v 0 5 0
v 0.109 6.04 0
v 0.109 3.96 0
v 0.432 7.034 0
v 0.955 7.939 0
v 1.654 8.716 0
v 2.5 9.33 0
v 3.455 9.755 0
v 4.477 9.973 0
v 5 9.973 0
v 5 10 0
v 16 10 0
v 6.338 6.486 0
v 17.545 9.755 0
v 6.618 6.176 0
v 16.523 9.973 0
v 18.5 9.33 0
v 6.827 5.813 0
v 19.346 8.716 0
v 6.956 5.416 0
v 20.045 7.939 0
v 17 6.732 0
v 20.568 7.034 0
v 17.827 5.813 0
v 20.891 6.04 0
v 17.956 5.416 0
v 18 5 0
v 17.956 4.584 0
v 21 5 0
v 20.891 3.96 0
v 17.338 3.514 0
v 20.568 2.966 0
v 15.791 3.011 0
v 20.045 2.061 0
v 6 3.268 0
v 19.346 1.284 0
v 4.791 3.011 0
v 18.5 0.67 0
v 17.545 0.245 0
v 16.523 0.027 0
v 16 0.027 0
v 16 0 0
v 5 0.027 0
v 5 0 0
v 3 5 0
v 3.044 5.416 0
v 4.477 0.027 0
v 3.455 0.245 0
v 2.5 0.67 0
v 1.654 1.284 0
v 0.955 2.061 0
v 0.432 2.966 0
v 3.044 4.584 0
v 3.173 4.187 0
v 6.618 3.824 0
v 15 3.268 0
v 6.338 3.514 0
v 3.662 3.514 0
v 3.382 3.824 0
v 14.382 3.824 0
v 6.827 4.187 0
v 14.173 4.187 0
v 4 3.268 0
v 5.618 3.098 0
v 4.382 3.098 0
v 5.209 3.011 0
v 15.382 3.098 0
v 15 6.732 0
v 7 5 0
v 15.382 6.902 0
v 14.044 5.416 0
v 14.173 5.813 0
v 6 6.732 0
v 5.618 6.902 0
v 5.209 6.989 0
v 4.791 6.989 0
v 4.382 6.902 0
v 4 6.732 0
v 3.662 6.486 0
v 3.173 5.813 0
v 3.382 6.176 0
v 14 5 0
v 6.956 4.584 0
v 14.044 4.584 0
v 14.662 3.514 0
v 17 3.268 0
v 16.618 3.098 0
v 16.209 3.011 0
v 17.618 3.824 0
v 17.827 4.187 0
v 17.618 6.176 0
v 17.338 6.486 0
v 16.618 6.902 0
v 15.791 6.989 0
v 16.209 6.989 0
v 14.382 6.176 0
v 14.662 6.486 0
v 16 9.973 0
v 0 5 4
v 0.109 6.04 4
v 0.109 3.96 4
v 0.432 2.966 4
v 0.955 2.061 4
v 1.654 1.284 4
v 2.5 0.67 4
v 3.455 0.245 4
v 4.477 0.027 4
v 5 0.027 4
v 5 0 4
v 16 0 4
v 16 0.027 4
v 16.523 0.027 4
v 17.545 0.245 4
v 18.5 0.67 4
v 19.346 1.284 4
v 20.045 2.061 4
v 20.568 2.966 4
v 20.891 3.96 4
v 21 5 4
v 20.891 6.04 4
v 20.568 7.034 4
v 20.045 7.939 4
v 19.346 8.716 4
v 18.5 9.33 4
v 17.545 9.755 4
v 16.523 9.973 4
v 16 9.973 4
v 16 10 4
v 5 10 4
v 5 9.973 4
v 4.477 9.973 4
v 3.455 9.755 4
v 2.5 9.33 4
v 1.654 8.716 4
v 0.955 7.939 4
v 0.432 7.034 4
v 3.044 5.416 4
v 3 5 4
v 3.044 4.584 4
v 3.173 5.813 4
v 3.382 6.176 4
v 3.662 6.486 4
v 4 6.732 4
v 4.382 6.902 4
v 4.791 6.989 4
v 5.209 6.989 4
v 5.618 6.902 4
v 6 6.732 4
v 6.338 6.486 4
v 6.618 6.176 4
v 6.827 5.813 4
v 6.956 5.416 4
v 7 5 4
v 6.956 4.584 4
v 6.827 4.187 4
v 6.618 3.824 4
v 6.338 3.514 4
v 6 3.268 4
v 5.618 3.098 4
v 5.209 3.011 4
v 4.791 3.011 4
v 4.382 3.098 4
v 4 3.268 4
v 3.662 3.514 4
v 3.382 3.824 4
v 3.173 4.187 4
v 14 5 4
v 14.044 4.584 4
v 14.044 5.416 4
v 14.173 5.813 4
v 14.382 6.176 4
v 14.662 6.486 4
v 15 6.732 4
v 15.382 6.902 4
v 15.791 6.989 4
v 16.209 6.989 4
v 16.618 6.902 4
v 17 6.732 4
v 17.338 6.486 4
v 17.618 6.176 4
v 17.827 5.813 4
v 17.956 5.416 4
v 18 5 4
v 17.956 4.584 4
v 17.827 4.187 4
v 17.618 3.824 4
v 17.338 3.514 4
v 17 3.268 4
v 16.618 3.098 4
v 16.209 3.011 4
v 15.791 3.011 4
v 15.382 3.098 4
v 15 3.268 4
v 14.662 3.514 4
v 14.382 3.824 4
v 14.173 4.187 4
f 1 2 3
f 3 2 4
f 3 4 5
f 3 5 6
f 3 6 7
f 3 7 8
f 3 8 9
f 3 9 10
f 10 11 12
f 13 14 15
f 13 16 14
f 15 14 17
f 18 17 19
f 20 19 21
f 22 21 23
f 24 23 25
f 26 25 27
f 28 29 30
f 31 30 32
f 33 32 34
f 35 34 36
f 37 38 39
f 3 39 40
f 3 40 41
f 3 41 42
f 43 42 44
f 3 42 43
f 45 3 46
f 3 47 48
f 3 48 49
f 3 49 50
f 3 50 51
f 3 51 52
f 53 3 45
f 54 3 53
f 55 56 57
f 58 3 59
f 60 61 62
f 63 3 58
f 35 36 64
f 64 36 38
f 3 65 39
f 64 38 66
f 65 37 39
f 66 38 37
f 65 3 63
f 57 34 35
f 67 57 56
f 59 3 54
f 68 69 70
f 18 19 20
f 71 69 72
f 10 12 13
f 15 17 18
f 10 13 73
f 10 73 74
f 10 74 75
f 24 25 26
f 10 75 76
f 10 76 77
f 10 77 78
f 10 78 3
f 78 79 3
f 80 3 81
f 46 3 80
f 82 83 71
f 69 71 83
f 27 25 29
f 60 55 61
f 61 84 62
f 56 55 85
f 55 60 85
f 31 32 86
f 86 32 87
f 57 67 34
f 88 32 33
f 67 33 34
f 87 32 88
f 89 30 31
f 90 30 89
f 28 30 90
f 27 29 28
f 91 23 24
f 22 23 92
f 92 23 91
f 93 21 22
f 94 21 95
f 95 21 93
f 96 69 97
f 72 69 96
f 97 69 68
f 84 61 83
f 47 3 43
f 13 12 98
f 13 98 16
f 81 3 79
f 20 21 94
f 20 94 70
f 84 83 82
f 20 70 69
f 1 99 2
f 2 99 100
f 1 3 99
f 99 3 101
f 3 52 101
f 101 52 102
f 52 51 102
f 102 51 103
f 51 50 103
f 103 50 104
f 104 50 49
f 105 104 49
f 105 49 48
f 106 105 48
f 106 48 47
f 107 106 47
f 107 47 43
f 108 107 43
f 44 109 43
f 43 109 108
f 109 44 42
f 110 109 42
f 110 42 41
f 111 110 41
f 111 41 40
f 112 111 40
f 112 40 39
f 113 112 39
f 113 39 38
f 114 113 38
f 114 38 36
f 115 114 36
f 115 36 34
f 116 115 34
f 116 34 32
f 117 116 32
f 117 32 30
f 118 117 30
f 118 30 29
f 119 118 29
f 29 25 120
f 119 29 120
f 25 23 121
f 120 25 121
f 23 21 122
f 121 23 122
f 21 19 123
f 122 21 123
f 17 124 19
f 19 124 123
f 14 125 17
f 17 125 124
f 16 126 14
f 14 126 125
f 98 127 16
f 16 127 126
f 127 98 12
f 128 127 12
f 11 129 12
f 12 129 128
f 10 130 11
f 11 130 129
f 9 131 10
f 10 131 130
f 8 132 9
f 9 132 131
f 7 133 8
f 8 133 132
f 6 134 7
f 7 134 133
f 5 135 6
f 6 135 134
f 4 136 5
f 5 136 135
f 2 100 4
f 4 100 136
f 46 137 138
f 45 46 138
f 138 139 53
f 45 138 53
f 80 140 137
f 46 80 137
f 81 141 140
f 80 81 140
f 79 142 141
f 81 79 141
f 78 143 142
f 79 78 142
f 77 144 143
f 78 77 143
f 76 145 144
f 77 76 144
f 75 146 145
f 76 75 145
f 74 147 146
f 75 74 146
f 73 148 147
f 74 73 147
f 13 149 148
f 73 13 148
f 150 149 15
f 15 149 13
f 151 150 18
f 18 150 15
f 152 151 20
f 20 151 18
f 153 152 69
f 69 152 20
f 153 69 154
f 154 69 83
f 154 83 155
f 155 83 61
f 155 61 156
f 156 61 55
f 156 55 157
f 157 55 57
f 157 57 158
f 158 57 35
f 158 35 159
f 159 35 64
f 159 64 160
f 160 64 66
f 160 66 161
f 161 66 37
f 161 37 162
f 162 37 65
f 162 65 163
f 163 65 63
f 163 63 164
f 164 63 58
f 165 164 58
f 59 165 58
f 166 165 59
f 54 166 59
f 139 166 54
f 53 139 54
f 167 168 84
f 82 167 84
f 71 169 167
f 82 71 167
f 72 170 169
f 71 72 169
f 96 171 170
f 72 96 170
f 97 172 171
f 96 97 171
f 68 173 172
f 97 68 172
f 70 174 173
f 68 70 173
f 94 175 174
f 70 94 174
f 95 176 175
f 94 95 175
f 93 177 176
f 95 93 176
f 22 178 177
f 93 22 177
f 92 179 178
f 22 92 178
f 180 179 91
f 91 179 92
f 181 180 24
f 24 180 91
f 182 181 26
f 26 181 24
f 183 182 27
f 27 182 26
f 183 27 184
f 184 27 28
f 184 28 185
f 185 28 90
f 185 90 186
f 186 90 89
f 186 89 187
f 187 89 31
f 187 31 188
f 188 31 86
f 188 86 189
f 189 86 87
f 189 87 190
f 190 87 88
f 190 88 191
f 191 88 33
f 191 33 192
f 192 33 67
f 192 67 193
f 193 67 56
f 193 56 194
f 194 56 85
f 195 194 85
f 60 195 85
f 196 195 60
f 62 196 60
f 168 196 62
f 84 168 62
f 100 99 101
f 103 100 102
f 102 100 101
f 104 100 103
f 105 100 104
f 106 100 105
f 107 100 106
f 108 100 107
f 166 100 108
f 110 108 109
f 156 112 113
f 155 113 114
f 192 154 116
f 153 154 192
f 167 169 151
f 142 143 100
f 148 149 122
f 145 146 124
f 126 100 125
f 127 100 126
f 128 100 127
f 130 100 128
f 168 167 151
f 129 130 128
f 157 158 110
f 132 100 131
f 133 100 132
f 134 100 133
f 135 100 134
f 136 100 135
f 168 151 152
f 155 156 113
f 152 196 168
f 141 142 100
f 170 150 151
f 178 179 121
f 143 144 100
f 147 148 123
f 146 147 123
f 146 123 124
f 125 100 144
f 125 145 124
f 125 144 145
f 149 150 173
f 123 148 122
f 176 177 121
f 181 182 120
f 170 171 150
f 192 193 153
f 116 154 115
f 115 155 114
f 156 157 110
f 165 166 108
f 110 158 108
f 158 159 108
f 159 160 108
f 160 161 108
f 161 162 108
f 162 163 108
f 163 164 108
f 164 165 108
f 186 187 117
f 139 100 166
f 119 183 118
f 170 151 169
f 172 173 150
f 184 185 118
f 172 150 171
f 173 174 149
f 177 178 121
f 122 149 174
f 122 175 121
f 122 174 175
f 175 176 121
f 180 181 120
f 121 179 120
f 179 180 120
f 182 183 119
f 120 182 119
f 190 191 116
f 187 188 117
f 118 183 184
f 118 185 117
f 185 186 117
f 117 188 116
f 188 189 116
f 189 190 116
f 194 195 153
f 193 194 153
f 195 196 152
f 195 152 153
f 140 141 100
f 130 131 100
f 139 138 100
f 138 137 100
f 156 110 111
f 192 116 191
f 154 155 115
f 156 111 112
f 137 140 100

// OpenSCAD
// file: config.scad
// This is the config for an M8 Mendel sized printer.

//Constants (These are used throughout the whole printer)
frameroddia = 8.5; //the frame rod diameter
smoothroddia = 8.5; //the smooth rod diameter
bushingod = 16; //The prusabushing OD, you can change this to 15 to use LM8UU linear bearings 
tapsize = 7; //The size of the hole before tapping. 7mm seems to work well.

nemasize = 1.7; //Nema Size (in imperial)
motorscrew = 4; //Hole diameter for mounting the motor
motorcenter = 23; //center hole size for the motor

nutheight = 7;
nutdia = 14.8;

beltthick = 2; //Thickness of the timing belt
beltwidth = 7; // Belt width, used for the y bed clamps

bearingid = 8; // 608
bearingod = 22; // 608
bearinginnerrace = 12; // the amount of the inner race exposed

tapping = true; //turn tapping on/off, not implemented yet. (Version 0.3) Version 0.2 has tapping by default right now
layerheight = 0.32; //skeinforge/slicer layer height, used for the idler wasers right now

//Frame Vertex
vertexwall = 3;
triangle = 60;

//Y Motor Mount
ymountthick = 9;
ywallmulti = 2; //the wall thickness multiplier for the bits that interface with the frame rod
ymotorwallmulti = 2.4; //multiplier for the motor holes because you might want them thicker
ycenterwallmulti = 1.5; //multiplier for the center hole because you might want them thinner

//Y Belt Clamps
clampthick = 4;
clampholedia = 4;
clampholewall = 3;

//Top Piece
motorwallmulti= 1.9;
centerwallmulti = 1.7;
partthick = 8;
toprodwall = 4;
toprodspacing = 72;
siderodwall = 4;

// X End Pieces
xrodspacing = 55; //rod spacing center to center
nutwall = 3; //wall thickness around nut and bushing
towergap= 10; // 0.75 diameter wrap should be ok i think. Make a flag for full wrap and no square for bushings/linear bearings maybe?
// Idler
idlerthick = 4.5; //no
idlerwidth = 4.5; //no
idlergap = 8; //no
//Motor
wallmulti = 1.5; //no
motorwallmulti = 1.7; //no
partthick = 8; //thickness of the motor mount (6 works well, need to decouple from top piece)
centerwallmulti = 1.5; // center motor hole multi

//X Carriage 
carriagewidth = 60;
bushingwall = 3;
backwall = 5;
tools = 2;
tool1dia = 16;
tool2dia = 16;
adapterholedia = 4;
platformthick = 10;
platformextension = 40; 
pulleydia = 12;
clampthick = 4;
clampholedia = 4;

//Extruder

//Groove Mount
	//Default is pretty good for MakerGear insulators
groovedia = 12;
grooveheight = 4.5;

//pen holder 
penwall = 3 ;
holdingscrewdia = 3;
shaftheight = 30;
// main file
include <config.scad>;
$fn = 30;

difference(){
union(){
translate([clampholedia/2+clampholewall,clampholedia/2+clampholewall,0])cylinder(r = clampholedia/2+clampholewall, h = clampthick);
translate([clampholedia*1.5+clampholewall+beltwidth,clampholedia/2+clampholewall,0])cylinder(r = clampholedia/2+clampholewall, h = clampthick);
translate([clampholedia/2+clampholewall,0,0])cube([beltwidth+clampholedia,clampholedia+clampholewall*2,clampthick]);
}
translate([clampholedia/2+clampholewall,clampholedia/2+clampholewall,0])cylinder(r = clampholedia/2, h = clampthick);
translate([clampholedia*1.5+clampholewall+beltwidth,clampholedia/2+clampholewall,0])cylinder(r = clampholedia/2, h = clampthick);
}
